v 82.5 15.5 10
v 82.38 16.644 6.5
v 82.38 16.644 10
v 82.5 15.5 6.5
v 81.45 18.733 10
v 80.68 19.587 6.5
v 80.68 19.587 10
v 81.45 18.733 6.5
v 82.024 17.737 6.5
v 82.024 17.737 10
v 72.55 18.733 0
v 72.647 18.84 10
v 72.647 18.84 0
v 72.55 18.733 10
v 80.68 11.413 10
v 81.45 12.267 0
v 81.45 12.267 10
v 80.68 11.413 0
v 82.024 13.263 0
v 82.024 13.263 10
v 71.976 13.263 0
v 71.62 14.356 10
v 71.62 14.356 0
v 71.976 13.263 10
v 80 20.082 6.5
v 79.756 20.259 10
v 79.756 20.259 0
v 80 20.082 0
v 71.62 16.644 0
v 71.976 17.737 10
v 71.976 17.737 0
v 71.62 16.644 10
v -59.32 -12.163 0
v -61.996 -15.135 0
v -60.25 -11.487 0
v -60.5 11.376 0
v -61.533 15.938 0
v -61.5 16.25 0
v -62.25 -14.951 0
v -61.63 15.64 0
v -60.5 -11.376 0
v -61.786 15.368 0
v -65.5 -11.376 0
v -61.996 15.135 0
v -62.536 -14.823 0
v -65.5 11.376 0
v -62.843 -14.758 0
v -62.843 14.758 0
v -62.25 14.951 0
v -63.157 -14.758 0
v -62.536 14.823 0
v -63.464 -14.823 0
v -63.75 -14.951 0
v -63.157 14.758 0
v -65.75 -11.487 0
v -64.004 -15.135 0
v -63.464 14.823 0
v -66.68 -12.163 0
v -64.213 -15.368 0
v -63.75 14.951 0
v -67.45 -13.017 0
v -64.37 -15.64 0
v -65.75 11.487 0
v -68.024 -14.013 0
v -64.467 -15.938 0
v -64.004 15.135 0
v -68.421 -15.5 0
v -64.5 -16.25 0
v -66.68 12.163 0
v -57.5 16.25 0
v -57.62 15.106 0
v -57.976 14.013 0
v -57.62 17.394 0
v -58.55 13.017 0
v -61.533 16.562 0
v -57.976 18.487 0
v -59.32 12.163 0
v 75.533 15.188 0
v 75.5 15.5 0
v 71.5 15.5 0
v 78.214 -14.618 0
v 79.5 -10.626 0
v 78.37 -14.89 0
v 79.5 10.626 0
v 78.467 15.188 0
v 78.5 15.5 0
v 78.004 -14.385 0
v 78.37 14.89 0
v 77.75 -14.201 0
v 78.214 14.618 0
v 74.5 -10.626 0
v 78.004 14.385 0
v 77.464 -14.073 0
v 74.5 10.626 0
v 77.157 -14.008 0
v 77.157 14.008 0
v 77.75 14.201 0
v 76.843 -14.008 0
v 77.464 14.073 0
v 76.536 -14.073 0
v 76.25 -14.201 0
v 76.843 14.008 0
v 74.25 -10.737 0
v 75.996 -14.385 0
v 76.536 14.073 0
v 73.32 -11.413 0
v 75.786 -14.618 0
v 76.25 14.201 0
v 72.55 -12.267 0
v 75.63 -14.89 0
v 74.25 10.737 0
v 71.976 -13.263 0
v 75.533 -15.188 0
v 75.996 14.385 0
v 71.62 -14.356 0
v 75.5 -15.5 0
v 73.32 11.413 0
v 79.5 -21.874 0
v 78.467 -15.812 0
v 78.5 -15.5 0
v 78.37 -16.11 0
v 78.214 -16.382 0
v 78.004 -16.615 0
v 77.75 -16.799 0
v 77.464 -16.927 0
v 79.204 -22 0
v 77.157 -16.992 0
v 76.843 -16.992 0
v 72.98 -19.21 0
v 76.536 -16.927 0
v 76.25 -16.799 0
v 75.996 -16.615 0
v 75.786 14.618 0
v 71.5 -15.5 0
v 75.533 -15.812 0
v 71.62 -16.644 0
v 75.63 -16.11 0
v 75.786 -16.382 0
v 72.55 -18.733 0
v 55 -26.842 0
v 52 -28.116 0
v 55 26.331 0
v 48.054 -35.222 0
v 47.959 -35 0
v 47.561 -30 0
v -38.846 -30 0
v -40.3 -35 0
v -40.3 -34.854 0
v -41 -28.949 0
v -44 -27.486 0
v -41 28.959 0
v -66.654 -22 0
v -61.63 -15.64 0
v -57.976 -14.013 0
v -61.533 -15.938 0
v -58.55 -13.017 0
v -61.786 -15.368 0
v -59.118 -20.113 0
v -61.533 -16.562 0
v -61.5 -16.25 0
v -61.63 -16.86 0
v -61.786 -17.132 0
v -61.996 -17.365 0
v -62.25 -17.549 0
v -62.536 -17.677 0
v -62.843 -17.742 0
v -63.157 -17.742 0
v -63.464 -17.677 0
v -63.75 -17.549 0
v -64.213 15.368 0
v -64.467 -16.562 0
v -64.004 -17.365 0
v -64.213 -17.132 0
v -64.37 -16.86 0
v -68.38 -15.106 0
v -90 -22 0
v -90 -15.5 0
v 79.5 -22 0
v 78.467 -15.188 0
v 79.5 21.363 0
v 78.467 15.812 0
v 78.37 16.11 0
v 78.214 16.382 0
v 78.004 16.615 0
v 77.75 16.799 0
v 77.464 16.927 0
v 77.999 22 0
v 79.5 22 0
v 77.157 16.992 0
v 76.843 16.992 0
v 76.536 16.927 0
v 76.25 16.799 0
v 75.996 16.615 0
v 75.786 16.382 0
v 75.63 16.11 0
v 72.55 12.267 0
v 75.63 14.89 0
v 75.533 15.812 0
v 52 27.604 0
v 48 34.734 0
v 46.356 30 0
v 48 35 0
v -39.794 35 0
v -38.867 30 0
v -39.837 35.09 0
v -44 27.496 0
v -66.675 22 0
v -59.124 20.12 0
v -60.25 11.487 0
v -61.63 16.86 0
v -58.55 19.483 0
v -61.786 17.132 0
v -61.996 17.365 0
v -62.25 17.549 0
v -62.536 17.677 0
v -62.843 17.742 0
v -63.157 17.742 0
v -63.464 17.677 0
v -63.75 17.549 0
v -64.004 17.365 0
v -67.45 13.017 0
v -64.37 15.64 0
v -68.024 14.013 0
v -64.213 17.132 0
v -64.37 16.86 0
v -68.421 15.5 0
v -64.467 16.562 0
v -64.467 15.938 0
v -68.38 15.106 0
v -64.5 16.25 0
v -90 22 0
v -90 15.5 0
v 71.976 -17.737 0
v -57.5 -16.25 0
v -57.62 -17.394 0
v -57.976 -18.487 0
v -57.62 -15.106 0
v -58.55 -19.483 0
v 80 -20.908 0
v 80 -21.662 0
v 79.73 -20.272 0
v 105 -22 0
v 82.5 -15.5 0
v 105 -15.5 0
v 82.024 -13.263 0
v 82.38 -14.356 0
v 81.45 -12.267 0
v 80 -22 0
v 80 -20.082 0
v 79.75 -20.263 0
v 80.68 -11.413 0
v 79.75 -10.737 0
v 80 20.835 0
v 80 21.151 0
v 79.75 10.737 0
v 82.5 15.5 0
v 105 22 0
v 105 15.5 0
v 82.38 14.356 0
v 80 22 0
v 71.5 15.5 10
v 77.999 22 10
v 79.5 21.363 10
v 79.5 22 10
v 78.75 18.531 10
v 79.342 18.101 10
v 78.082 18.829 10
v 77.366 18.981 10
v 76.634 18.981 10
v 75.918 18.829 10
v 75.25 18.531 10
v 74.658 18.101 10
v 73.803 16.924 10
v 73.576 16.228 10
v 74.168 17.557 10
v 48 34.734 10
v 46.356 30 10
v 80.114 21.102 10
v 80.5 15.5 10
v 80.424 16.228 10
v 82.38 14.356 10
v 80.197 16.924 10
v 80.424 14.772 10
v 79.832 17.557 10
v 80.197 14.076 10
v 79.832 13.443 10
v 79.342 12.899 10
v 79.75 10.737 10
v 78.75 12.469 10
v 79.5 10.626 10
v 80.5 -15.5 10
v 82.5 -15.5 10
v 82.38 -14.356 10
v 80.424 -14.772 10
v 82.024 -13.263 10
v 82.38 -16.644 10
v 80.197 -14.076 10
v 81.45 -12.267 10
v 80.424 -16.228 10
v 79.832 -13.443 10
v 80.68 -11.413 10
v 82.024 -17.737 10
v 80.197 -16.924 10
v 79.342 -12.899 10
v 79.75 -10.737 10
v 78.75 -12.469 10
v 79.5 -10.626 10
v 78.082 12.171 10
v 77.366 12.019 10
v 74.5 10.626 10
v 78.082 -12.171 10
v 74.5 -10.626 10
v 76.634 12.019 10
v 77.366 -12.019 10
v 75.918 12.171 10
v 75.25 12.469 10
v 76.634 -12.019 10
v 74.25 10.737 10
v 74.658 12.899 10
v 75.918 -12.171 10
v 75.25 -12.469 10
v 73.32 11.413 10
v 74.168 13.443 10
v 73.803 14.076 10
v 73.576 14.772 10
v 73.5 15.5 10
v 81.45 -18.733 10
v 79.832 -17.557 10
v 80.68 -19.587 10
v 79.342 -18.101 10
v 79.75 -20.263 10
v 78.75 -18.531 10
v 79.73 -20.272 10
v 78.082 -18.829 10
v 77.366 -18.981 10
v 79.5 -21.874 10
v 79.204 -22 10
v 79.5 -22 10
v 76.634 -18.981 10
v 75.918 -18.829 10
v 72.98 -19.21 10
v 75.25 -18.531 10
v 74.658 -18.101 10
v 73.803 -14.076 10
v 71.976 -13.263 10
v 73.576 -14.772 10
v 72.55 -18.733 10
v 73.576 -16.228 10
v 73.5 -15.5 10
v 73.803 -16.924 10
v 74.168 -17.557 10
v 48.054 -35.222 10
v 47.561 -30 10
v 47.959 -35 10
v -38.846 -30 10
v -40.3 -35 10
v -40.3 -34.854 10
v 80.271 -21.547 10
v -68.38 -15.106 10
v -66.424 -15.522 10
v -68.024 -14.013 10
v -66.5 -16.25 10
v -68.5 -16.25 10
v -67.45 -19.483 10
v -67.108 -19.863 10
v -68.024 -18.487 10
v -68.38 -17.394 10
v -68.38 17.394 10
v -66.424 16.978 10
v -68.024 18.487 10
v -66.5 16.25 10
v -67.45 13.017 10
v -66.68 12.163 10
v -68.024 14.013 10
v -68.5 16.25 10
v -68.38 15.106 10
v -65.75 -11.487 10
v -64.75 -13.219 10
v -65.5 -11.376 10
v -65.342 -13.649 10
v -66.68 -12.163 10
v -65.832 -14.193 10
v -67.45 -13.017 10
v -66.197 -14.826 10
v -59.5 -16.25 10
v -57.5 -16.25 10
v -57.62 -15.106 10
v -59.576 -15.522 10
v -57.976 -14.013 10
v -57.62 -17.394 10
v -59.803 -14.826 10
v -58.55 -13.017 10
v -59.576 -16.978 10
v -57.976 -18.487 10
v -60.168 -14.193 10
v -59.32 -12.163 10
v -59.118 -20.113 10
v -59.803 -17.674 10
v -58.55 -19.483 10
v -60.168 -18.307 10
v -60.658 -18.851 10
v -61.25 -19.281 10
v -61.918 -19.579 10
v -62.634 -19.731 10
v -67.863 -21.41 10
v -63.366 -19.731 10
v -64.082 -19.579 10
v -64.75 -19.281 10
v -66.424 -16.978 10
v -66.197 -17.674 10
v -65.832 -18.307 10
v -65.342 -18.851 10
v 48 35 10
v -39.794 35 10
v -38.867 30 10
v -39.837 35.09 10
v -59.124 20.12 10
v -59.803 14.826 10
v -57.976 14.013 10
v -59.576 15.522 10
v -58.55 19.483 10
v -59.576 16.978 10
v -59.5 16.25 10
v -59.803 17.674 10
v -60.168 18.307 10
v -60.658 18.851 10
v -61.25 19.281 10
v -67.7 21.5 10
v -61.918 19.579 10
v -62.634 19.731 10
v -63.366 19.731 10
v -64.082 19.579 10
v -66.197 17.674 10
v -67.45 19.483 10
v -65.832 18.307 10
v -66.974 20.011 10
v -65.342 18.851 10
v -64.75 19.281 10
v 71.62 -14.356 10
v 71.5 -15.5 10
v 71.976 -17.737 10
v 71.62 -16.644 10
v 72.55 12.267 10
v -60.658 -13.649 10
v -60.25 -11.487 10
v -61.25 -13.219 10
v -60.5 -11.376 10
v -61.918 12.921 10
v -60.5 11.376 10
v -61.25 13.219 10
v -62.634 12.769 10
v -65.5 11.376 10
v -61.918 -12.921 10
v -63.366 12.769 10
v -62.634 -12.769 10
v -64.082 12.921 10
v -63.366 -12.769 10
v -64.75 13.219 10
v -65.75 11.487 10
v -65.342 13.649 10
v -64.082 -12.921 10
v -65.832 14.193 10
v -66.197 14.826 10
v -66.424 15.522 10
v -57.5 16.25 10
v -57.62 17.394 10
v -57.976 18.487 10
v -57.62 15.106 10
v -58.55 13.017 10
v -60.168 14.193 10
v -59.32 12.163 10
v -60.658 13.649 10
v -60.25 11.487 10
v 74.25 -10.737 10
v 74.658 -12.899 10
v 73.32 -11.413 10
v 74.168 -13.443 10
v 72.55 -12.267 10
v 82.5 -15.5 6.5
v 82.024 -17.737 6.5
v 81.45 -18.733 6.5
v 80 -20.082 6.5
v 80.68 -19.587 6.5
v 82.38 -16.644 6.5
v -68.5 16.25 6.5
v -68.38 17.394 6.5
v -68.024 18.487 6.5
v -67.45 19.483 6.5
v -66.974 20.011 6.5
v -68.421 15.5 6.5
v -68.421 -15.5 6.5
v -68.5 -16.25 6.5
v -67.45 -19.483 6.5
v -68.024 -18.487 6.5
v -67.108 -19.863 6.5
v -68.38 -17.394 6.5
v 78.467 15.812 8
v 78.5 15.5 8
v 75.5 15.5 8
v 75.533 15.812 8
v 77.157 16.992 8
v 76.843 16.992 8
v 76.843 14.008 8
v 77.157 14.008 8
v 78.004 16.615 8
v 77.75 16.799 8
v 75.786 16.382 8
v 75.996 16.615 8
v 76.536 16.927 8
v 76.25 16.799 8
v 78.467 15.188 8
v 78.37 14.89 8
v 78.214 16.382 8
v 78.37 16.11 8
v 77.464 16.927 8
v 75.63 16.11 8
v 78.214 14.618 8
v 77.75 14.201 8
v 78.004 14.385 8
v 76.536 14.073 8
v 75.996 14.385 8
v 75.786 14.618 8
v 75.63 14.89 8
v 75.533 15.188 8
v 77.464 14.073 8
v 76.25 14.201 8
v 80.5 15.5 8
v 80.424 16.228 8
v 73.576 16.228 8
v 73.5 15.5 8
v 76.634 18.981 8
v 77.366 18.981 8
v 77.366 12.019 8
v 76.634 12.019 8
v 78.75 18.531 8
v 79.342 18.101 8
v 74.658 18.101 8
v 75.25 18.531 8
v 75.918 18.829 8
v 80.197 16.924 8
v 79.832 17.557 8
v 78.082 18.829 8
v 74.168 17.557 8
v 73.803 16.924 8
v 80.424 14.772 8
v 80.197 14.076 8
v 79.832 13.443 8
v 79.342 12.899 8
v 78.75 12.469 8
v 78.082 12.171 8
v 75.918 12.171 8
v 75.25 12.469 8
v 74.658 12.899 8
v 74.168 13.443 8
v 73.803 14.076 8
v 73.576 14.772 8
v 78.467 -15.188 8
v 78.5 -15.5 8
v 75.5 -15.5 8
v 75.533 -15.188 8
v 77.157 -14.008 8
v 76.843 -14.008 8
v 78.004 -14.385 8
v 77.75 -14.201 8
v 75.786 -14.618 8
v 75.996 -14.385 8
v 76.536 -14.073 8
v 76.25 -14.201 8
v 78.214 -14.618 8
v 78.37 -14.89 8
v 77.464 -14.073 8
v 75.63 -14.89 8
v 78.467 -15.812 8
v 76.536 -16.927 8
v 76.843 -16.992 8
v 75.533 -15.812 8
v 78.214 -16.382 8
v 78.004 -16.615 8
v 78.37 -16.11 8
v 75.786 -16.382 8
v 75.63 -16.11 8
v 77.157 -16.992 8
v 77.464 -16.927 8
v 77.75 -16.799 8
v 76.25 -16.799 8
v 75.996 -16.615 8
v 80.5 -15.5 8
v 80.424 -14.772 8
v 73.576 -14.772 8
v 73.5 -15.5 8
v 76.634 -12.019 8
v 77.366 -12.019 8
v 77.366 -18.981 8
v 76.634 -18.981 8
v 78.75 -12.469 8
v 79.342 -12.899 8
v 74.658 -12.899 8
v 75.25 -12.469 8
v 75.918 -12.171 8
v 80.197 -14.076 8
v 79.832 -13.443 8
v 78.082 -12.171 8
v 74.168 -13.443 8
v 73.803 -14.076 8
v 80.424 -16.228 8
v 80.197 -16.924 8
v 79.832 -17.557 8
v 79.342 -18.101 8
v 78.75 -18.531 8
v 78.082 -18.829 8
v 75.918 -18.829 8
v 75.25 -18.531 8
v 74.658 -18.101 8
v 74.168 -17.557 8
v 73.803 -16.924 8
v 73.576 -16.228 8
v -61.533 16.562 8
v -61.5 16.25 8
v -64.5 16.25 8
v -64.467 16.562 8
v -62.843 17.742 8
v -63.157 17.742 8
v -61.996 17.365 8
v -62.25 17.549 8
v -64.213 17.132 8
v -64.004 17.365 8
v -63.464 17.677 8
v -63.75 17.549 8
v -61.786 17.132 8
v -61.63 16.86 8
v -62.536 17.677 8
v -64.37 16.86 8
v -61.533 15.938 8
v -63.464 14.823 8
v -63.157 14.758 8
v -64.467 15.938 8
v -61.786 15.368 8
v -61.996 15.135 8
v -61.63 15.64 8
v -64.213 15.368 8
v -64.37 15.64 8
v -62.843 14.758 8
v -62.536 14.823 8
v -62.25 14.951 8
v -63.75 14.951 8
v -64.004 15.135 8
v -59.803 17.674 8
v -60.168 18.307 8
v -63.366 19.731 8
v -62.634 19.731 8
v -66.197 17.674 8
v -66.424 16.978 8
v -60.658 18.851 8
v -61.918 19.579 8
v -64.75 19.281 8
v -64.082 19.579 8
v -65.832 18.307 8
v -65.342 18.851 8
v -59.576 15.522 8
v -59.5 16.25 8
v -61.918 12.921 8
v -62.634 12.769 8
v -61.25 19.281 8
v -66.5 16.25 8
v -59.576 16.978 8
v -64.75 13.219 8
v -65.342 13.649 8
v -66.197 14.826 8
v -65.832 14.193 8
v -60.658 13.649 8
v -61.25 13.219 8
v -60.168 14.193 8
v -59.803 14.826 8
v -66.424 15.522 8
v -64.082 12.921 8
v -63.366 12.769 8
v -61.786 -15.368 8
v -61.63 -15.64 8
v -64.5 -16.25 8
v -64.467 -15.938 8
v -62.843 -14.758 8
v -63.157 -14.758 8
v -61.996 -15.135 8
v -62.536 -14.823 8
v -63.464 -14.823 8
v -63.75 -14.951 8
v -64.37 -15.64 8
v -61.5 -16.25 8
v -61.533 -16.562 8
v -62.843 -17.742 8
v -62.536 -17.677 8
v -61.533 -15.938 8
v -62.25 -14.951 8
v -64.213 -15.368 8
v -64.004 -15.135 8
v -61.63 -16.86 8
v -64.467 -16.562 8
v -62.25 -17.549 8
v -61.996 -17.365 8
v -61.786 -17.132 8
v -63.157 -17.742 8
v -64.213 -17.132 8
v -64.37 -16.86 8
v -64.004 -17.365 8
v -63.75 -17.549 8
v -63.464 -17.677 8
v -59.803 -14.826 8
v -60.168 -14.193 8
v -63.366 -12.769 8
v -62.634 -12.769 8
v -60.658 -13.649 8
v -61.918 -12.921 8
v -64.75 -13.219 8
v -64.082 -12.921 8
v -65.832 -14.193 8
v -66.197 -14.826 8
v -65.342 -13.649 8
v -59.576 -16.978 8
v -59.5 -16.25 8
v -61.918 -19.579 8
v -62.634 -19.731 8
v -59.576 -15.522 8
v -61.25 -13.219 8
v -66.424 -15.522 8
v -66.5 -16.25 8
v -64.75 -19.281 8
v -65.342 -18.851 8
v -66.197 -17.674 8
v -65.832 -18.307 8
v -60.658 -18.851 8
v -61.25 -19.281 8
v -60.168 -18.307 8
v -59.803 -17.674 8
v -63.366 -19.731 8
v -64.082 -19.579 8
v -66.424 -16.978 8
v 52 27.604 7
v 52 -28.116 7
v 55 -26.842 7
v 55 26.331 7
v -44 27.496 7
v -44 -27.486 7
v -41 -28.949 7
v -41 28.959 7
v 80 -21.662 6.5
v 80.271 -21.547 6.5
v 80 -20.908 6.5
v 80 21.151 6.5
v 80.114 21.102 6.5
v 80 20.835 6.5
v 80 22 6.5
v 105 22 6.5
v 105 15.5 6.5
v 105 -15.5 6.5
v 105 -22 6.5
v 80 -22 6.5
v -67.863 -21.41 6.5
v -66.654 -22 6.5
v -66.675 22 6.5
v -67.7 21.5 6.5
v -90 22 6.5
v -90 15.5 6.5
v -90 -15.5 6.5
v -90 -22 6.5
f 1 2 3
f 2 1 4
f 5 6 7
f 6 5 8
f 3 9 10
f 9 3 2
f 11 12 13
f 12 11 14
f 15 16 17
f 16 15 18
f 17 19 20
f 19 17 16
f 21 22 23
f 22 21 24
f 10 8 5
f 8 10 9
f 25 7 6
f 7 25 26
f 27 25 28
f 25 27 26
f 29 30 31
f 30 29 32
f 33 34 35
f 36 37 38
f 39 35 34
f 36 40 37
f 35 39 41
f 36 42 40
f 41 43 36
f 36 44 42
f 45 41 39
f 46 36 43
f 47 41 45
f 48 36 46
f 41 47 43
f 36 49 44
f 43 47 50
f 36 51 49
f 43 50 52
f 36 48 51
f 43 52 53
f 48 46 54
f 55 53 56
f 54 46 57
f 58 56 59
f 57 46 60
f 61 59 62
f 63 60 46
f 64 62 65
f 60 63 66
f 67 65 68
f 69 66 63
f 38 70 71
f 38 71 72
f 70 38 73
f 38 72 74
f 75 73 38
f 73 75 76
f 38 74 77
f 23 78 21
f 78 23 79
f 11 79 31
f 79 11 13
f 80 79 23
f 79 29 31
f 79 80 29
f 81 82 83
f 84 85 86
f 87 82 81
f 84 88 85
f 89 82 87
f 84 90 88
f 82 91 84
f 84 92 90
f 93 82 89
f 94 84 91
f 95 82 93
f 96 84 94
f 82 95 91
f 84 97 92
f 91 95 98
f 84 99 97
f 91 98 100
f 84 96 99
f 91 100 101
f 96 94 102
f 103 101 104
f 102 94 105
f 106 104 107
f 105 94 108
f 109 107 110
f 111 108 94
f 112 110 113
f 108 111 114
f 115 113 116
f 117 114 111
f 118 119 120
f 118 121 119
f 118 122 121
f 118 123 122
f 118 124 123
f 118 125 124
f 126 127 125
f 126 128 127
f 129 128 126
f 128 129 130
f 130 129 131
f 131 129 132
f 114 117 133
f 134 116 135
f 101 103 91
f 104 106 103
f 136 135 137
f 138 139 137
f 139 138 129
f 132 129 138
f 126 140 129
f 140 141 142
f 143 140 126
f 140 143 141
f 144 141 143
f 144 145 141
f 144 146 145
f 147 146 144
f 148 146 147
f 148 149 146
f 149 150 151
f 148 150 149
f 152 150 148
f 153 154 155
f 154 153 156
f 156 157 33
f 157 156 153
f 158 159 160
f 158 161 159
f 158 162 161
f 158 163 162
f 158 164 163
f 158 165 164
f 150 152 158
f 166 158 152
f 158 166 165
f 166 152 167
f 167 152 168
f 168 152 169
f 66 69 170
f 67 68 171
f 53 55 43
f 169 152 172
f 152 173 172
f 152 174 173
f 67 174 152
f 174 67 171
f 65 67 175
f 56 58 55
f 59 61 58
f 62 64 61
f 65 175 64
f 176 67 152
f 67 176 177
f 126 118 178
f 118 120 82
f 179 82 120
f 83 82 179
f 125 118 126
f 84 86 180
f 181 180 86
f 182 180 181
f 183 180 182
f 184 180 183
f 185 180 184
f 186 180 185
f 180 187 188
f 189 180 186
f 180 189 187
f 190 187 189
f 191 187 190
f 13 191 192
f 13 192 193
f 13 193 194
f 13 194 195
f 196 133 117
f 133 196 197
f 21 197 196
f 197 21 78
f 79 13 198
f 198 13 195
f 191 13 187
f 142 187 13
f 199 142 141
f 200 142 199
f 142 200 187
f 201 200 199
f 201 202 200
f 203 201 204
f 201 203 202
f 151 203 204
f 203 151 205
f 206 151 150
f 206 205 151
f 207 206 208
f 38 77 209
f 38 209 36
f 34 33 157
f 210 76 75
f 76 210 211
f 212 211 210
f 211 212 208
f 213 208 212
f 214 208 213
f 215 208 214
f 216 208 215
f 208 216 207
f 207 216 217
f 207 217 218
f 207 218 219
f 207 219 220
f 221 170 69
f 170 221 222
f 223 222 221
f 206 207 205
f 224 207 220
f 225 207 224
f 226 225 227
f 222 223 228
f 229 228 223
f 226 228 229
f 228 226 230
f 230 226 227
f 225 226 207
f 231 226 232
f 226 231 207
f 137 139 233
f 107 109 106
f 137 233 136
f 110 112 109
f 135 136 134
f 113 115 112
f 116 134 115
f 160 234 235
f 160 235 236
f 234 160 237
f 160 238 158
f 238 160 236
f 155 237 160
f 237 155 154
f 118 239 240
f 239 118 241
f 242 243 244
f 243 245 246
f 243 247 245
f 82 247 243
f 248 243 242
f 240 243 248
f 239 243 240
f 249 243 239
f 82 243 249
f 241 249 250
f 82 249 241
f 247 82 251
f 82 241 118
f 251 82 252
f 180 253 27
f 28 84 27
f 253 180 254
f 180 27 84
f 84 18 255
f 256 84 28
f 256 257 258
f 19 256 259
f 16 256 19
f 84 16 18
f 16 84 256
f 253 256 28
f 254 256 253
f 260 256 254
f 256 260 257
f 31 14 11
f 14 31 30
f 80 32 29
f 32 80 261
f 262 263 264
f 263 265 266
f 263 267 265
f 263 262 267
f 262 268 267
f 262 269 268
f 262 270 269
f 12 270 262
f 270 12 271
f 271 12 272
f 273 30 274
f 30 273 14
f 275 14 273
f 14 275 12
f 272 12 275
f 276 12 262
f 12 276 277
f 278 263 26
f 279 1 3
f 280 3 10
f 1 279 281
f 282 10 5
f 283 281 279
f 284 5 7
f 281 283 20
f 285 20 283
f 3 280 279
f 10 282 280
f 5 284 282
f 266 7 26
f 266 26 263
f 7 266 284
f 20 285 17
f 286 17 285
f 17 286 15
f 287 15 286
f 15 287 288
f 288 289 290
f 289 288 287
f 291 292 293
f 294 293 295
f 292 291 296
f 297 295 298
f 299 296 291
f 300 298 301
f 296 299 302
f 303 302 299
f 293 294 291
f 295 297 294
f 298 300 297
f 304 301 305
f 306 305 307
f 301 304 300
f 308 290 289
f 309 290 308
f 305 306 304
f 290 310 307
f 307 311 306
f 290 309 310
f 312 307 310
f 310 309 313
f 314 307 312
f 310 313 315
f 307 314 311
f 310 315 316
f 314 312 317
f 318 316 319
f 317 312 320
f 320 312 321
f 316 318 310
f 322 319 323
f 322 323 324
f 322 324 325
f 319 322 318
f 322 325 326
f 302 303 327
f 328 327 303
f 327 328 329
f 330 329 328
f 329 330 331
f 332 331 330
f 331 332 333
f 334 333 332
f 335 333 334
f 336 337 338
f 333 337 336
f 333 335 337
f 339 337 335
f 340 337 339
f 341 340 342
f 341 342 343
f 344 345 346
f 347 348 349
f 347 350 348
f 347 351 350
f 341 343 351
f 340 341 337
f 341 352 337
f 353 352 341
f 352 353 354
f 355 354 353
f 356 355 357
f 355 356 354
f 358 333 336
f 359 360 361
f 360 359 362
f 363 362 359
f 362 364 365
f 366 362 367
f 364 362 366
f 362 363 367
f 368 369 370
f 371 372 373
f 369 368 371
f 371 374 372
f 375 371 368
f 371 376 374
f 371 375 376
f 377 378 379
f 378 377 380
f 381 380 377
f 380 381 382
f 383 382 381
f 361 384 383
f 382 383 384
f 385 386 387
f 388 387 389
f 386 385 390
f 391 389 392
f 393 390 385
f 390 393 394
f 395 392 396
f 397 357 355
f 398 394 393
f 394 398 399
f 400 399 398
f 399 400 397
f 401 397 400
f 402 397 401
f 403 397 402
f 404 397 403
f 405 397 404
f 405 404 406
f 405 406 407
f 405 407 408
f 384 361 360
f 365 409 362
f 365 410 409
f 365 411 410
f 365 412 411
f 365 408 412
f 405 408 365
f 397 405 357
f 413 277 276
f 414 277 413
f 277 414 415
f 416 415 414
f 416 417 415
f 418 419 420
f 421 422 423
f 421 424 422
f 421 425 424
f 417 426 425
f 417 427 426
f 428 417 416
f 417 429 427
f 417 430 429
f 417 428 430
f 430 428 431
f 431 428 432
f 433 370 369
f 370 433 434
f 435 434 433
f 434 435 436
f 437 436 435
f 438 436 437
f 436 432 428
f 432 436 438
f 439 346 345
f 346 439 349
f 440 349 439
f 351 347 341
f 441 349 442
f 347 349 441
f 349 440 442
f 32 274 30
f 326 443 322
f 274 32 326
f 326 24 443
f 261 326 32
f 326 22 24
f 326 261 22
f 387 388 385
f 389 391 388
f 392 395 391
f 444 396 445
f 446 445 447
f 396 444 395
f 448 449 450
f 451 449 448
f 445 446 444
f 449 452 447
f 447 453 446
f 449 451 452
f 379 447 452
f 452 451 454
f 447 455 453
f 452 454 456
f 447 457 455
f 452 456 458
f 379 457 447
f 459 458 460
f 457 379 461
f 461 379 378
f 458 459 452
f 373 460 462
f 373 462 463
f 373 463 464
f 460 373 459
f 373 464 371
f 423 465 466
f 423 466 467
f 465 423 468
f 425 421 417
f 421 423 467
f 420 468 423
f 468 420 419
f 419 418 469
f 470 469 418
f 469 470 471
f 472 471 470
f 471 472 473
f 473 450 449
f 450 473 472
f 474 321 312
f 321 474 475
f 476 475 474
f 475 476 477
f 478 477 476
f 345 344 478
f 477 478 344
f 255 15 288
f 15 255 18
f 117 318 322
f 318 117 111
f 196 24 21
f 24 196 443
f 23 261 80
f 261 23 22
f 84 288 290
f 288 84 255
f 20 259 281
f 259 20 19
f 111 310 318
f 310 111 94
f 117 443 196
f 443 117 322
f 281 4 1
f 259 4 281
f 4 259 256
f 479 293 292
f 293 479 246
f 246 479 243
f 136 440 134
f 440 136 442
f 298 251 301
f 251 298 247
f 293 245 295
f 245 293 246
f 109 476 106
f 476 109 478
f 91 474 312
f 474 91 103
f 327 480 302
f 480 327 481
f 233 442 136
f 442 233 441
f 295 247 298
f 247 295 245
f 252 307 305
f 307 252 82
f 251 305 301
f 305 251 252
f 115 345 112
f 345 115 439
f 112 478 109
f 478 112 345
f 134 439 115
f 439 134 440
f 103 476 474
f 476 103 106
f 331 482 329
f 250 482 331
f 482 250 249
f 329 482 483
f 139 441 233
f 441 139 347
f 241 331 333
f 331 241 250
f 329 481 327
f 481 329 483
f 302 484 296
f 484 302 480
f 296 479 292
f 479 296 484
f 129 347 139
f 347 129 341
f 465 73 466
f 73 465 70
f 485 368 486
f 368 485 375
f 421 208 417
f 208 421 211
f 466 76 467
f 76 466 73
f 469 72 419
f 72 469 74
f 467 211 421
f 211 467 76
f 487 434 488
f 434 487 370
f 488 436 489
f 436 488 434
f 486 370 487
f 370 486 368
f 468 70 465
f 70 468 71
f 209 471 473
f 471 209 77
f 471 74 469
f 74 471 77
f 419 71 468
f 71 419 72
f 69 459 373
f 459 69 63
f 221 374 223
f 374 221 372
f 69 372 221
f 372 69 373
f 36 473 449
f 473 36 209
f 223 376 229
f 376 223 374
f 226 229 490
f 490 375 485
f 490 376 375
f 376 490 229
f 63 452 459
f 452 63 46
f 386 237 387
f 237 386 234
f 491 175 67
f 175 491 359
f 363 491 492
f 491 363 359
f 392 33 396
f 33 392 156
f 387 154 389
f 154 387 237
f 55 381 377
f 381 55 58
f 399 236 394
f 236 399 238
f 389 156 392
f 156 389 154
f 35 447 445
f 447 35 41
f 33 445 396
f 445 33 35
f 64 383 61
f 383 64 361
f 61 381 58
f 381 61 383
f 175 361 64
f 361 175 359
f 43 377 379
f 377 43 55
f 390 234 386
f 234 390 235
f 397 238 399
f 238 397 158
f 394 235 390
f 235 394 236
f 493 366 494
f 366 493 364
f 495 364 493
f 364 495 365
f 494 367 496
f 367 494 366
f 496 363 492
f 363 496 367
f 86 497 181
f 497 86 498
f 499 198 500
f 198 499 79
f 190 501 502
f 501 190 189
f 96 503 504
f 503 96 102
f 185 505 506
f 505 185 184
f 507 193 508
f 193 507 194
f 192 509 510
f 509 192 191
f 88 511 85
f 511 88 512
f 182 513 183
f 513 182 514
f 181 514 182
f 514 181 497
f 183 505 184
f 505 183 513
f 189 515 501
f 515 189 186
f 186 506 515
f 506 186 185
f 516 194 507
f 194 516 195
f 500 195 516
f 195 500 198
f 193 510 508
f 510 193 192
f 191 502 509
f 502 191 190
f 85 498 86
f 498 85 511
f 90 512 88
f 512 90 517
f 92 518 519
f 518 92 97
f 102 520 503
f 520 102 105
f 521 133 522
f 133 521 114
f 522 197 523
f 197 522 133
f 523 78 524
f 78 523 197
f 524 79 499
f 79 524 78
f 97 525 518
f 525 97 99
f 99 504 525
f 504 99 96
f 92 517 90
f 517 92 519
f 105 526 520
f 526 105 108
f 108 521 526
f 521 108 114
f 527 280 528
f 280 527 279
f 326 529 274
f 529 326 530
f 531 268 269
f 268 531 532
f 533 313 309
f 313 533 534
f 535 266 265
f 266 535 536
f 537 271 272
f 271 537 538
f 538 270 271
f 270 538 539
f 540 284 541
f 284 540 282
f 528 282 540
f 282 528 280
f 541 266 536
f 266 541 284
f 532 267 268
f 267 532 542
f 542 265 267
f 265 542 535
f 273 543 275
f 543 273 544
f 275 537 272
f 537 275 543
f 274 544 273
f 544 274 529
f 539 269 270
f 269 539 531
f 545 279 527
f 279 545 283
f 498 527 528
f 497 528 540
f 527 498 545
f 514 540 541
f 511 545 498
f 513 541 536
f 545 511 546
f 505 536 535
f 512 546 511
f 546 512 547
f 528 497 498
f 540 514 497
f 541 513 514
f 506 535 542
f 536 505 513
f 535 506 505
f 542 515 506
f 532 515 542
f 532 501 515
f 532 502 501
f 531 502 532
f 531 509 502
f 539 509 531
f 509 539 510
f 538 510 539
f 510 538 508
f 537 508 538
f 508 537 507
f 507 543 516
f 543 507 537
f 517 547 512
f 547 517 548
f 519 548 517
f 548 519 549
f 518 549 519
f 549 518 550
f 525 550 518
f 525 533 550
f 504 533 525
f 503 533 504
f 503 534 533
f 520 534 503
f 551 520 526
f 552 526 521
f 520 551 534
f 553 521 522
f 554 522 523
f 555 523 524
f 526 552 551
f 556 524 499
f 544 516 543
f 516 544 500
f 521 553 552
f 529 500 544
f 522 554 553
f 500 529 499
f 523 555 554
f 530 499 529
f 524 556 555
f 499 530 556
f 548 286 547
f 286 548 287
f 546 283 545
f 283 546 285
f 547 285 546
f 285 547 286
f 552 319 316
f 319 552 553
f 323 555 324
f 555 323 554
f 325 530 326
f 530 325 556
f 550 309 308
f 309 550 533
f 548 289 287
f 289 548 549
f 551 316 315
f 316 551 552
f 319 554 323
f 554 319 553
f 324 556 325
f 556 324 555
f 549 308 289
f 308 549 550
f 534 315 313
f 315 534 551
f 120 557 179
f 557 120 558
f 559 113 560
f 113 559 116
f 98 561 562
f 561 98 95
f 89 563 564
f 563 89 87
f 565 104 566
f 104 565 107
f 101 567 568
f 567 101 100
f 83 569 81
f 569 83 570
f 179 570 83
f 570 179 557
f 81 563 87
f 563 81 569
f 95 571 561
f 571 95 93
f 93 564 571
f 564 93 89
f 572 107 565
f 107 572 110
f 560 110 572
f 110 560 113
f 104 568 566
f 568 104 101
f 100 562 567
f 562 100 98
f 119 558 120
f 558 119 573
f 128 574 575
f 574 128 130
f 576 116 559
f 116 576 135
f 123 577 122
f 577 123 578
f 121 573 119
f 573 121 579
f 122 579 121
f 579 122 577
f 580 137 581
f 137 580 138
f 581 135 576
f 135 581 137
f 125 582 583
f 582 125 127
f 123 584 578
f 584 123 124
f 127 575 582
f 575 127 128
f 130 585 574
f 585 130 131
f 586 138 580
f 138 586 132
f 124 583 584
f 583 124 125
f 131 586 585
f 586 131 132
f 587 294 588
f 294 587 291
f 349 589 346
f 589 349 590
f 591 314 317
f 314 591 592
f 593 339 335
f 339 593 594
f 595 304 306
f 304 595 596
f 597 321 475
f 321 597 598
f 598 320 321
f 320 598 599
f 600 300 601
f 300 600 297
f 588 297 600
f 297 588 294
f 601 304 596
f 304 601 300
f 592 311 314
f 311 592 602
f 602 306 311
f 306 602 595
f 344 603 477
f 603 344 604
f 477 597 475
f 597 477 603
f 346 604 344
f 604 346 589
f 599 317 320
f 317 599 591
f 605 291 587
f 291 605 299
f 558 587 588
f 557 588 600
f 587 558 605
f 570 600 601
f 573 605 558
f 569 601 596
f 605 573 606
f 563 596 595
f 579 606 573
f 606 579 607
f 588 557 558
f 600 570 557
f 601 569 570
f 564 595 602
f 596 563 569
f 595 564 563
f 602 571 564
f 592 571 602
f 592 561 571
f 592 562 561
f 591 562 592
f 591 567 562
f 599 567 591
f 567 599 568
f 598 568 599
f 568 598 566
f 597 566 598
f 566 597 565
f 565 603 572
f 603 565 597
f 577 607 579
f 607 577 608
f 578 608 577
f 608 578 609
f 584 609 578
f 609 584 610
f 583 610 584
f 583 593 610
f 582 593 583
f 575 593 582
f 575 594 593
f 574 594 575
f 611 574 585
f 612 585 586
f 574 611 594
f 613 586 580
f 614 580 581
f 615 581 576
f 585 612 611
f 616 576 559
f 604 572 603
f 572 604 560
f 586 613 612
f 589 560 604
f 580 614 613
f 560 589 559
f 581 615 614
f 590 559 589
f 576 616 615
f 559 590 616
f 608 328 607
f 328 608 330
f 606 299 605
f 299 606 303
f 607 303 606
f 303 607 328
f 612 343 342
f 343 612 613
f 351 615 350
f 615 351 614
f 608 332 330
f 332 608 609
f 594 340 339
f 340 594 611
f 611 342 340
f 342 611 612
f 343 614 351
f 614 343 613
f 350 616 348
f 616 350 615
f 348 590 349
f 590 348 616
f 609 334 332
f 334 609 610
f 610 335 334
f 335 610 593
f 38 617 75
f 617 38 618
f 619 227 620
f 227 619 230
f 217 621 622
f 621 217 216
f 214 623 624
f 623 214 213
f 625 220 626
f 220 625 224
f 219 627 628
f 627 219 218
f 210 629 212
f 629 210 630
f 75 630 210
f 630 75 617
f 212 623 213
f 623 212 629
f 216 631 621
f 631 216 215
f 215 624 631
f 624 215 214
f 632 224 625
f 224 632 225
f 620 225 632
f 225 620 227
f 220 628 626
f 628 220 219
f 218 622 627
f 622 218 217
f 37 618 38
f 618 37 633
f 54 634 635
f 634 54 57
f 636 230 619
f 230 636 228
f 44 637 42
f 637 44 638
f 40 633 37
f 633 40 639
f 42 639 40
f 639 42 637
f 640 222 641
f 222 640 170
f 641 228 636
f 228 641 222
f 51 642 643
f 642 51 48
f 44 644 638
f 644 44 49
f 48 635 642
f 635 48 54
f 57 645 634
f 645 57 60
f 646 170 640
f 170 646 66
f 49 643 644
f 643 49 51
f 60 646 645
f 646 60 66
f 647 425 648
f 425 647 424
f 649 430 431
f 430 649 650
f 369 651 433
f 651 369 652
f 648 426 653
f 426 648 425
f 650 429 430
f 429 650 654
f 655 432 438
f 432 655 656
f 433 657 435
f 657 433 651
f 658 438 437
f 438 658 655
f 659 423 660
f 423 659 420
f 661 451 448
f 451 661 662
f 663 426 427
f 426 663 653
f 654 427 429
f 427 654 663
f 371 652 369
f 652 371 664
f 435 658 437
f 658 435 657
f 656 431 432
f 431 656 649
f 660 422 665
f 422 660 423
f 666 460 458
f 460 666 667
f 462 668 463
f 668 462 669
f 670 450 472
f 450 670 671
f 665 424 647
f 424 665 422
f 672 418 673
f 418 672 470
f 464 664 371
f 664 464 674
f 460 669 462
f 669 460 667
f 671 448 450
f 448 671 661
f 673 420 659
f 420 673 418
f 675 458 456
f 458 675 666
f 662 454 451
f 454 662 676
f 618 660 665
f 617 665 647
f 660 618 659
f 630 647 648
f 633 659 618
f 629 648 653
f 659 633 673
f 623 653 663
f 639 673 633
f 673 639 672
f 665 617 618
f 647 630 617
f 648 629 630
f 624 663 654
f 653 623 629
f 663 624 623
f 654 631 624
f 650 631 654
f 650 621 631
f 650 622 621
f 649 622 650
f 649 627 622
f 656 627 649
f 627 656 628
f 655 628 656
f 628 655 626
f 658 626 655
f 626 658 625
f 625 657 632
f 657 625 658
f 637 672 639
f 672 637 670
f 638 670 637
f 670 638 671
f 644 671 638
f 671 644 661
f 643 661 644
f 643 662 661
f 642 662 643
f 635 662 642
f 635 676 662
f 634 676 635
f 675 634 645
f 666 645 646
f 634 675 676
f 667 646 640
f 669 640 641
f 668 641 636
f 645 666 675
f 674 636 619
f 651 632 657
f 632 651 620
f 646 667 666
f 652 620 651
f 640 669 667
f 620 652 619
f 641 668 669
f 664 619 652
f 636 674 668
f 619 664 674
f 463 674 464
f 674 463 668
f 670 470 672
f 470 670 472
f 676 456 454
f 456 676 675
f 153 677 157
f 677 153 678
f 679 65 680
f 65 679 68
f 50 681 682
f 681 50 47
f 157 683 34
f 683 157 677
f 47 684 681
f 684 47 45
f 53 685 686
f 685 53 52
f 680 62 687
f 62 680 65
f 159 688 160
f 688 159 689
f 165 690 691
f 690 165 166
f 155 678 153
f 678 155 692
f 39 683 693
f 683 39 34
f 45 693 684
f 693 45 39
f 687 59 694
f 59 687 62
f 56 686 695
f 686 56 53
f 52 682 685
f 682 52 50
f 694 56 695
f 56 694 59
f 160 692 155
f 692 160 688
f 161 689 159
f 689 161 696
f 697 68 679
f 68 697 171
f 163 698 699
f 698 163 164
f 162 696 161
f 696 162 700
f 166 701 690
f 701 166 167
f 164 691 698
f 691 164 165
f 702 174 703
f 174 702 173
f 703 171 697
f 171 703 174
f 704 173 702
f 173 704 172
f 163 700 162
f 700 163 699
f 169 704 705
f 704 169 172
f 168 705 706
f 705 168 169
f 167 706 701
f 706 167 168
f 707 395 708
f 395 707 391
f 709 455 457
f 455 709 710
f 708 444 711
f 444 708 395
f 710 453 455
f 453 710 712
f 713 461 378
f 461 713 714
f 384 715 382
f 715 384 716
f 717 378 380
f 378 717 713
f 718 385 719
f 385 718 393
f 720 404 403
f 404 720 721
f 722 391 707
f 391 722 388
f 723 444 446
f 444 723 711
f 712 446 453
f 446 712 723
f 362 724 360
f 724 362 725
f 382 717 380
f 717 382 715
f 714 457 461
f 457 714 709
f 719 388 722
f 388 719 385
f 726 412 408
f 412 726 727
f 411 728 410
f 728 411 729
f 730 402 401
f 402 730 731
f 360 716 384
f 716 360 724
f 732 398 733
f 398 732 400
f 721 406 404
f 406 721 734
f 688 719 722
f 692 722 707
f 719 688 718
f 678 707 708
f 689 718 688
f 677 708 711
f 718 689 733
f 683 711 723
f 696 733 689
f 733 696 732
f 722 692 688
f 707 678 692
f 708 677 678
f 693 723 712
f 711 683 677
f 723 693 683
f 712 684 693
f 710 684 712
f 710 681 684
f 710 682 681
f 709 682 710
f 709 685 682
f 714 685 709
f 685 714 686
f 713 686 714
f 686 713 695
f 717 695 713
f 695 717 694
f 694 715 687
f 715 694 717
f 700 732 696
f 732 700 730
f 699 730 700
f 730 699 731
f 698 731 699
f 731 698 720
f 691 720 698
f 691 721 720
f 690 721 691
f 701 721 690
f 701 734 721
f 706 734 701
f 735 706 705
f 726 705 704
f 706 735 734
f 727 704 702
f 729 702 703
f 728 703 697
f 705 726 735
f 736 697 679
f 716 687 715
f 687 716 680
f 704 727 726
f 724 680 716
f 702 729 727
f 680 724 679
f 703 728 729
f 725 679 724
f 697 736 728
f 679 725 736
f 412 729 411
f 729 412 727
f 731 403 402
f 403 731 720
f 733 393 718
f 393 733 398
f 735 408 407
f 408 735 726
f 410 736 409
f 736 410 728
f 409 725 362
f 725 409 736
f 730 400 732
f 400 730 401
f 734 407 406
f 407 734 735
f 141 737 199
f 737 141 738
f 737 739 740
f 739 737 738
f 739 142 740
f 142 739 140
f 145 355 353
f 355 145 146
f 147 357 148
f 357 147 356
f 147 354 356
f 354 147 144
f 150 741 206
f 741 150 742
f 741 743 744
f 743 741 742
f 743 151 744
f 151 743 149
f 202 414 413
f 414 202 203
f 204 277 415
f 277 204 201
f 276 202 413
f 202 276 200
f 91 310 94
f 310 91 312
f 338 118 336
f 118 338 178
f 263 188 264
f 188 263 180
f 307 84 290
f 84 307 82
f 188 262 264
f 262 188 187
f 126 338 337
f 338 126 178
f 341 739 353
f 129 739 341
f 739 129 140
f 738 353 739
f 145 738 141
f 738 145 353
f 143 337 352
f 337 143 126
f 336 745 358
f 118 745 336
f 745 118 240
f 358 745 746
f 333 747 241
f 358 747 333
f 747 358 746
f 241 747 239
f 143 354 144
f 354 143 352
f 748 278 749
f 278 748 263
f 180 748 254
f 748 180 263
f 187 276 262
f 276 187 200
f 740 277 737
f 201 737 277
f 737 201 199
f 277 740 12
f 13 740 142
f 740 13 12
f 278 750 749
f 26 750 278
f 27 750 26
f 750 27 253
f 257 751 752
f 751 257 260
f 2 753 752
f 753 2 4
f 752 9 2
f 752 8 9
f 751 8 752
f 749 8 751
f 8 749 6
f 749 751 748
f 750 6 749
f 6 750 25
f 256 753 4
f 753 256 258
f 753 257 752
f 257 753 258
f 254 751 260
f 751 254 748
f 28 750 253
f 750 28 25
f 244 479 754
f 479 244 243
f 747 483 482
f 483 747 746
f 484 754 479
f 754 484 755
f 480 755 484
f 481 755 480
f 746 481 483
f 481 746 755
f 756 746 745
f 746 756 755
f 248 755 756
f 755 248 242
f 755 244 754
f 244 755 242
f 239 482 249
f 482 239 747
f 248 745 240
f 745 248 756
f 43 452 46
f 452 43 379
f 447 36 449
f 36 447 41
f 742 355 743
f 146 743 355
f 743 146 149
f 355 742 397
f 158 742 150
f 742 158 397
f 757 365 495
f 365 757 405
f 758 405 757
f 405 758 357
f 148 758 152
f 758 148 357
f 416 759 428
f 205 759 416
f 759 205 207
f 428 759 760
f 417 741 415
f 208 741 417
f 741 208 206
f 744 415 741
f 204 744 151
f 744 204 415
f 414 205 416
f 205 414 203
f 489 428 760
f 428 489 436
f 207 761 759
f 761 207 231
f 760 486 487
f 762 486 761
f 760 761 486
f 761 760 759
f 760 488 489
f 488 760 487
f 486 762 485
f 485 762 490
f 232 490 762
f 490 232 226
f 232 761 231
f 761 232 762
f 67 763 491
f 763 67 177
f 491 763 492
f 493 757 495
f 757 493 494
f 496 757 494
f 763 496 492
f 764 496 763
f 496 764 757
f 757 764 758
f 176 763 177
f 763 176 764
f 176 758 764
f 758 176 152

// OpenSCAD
module Furby() 
{
    //Overly simplified furby
    scale([0.9,0.85,1])
        cylinder(h=100,d=100,$fn=100);
}

module Edison()
{
    //Mock Edison
    difference() {
    cube([122.3,72,3]);
    //Mounting Holes
    translate([6.3,6.3,-3])
        cylinder(h=10,d=3,$fn=30);
    translate([6.3,59.1,-3])
        cylinder(h=10,d=3,$fn=30);
    translate([48,27.2,-3])
        cylinder(h=10,d=3,$fn=30);    
    translate([48,51.5,-3])
        cylinder(h=10,d=3,$fn=30);    
    translate([106.6,11.9,-3])
        cylinder(h=10,d=3,$fn=30);  
    translate([106.4,60.2,-3])
        cylinder(h=10,d=3,$fn=30); 
    }
}

module Chassis() {
	translate([40,-40,0]) {
    //Central core
    translate([12,8,0])
        cube([3,63,7]);
    translate([8,5,0])
        rotate([0,0,90])
            cube([5,88.3,10]);
    translate([-84,7,0])
        cube([3,65,7]);
    translate([8,70,0])
        rotate([0,0,90])
            cube([5,88,10]);
    //Front
    translate([34.5,18,0])
        cube([5,44,10]);
    translate([6.1,9.38,0])
        rotate([0,0,-67])
            cube([5,35,10]);
    translate([38.16,56.5,0])
        rotate([0,0,67])
            cube([5,35,10]);
    //Front Buffers
    translate([65,55.5,0])
        rotate([0,0,90])
            cube([6.5,25,6.5]);
    translate([65,18,0])
        rotate([0,0,90])
            cube([6.5,25,6.5]);
    //Back
    translate([-105.5,18,0])
        cube([5,40,10]);
    translate([-80,5,0])
        rotate([0,0,64])
            cube([5,31,10]);
    translate([-107.7,61.5,0])
        rotate([0,0,-64])
            cube([5,31,10]);
    //Back Buffers
    translate([-105,55.5,0])
        rotate([0,0,90])
            cube([6.5,25,6.5]);
    translate([-105,18,0])
        rotate([0,0,90])
            cube([6.5,25,6.5]);
	}
	mountingpoints();
}

module mountingpoints() {
	l = 140;
	w1 = 31;
	w2 = 32.5;
	for (a =[[77,w1/2,0],[77,-w1/2,0],[77-l,w2/2,0],[77-l,-w2/2,0]])
	{
		translate(a) {
			cylinder(h=10,d=11,$fn=30);
		}
	}

}

module mountingholes() {
	l = 140;
	w1 = 31;
	w2 = 32.5;
	for (a =[[77,w1/2,-2],[77,-w1/2,-2],[77-l,w2/2,-2],[77-l,-w2/2,-2]])
	{
		translate(a) {
			cylinder(h=15,d=3,$fn=30);
			translate([0,0,10])
				cylinder(h=4,d=7,$fn=30);
		}
	}

}

/*
rotate([0,0,90])
    Edison();
*/

difference(){
	union() {
	Chassis();
	}
	mountingholes();
}
